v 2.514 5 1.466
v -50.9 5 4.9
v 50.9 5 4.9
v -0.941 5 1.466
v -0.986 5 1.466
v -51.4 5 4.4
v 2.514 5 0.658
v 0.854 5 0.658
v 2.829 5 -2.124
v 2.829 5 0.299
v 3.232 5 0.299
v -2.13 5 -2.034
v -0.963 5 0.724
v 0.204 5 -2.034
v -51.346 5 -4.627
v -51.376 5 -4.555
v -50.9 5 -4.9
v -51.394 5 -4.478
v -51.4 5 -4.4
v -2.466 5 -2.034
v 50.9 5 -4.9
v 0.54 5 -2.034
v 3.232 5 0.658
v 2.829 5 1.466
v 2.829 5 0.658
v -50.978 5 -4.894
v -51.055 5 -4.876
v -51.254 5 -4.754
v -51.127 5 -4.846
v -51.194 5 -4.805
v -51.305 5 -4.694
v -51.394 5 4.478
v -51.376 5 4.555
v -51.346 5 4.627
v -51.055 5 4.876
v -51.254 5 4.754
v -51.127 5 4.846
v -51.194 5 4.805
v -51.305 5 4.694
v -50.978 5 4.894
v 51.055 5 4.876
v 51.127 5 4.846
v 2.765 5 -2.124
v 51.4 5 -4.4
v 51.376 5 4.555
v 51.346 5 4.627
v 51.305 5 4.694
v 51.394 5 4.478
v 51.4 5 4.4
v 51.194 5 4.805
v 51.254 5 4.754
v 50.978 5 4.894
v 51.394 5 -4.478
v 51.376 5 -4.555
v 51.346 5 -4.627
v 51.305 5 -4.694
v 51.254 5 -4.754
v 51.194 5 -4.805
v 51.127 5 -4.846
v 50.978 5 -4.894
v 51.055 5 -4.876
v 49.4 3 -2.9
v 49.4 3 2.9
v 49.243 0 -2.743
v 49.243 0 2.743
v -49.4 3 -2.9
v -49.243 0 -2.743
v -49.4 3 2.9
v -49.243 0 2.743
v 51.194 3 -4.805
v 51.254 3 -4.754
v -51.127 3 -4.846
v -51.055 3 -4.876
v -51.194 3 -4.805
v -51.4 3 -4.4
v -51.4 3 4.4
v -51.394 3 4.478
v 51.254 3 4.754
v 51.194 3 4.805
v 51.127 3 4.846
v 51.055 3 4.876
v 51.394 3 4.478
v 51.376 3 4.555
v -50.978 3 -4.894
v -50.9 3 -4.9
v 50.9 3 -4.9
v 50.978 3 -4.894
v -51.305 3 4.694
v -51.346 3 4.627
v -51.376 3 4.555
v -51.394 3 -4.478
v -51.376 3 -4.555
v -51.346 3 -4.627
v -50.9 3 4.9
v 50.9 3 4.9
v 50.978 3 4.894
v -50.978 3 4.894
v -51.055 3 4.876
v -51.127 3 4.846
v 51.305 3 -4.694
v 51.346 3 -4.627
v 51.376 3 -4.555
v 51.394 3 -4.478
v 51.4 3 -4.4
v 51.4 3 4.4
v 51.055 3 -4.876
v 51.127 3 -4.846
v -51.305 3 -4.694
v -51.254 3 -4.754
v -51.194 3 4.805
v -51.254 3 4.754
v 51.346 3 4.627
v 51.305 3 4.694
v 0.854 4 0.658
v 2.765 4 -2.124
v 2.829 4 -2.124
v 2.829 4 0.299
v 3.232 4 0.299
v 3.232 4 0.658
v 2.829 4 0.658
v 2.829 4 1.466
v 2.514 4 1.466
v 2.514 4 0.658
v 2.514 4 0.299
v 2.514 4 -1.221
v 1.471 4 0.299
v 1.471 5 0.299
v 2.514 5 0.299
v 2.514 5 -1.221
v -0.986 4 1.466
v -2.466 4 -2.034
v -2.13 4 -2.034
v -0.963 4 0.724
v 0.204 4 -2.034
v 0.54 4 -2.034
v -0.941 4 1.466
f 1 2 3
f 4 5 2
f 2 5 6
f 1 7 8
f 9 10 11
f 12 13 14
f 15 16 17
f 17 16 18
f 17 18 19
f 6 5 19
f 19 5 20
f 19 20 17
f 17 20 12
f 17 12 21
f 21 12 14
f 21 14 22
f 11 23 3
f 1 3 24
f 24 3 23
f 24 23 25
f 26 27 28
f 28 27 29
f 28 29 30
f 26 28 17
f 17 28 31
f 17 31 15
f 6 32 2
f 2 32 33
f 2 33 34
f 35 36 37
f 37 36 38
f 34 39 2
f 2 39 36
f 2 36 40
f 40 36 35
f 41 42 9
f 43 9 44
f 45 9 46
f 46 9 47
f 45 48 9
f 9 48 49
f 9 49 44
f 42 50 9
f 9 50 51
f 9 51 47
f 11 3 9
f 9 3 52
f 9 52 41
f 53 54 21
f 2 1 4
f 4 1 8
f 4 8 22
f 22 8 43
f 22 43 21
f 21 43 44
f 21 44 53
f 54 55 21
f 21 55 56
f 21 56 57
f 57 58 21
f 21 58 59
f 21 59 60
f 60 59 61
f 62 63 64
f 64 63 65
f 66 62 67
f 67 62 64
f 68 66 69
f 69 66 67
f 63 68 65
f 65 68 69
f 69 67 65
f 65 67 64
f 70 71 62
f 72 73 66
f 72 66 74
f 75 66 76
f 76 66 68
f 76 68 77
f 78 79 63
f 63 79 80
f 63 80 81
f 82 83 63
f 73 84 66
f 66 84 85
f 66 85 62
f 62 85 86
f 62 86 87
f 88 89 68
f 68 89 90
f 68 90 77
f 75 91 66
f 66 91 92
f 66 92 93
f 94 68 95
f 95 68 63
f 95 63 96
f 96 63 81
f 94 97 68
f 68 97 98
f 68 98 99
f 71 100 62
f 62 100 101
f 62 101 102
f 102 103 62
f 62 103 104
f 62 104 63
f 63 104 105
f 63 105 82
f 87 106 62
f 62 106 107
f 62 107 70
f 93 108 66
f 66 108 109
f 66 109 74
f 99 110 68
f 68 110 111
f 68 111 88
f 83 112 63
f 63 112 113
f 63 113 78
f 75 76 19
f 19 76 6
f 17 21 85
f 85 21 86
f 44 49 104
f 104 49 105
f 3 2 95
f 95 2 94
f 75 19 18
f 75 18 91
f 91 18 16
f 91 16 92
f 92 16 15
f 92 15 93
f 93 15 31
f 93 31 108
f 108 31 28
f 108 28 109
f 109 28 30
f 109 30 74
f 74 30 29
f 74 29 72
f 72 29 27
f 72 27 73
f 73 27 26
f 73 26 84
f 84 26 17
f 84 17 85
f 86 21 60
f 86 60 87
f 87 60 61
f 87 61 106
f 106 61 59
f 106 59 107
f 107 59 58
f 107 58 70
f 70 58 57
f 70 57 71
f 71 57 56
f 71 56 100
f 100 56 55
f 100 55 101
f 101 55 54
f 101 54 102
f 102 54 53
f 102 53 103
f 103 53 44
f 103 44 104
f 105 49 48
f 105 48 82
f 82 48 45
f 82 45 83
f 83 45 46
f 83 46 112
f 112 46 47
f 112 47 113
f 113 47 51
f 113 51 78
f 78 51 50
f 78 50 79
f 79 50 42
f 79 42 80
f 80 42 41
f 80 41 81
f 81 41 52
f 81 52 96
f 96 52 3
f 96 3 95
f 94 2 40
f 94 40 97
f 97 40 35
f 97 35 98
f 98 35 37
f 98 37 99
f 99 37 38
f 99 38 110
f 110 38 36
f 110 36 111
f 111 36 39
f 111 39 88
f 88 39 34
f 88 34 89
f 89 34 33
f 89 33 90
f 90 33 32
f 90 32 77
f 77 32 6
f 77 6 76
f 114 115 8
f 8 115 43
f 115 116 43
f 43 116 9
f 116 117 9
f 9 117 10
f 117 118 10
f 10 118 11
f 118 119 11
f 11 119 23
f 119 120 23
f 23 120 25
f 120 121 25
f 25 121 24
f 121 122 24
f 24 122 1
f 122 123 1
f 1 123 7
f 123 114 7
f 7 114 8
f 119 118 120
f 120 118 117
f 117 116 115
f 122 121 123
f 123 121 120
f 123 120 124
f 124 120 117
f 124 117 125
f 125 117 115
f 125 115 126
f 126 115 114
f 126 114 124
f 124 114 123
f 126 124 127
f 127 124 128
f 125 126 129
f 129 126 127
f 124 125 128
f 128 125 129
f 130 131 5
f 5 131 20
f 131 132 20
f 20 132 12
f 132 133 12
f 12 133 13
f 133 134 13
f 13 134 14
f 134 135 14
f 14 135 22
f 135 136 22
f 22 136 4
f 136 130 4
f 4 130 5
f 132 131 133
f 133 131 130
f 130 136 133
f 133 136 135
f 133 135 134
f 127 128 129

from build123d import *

# Parameters (mm, degrees)
SKETCH1_W           = 98.8
SKETCH1_H           = 5.8
BOSS_EXTRUDE1_DEPTH = 3
SKETCH2_W           = 100.8
SKETCH2_H           = 7.8
BOSS_EXTRUDE3_DEPTH = 2
DRAFT1_ANGLE        = 3
SKETCH3_W           = 102.8
SKETCH3_H           = 9.8
BOSS_EXTRUDE4_DEPTH = 2
FILLET1_R           = 0.5
CUT_EXTRUDE1_DEPTH  = 1


with BuildPart() as part:
    # Sketch1 → Boss-Extrude1 (new body)
    with BuildSketch(Plane(origin=(0, 0, 0), x_dir=(1, 0, 0), z_dir=(0, 1, 0))):
        Rectangle(SKETCH1_W, SKETCH1_H)
    extrude(amount=BOSS_EXTRUDE1_DEPTH)

    # Draft1
    draft1_faces = [part.faces().sort_by_distance(p)[0] for p in [
        (49.4, 1.5, 0),
        (0, 1.5, 2.9),
        (-49.4, 1.5, 0),
        (0, 1.5, -2.9),
    ]]
    draft(draft1_faces, Plane(origin=(0, 3, 0), x_dir=(0, 0, -1), z_dir=(0, -1, 0)), DRAFT1_ANGLE)



with BuildPart() as body_2:
    # Sketch2 → Boss-Extrude3 (new body)
    with BuildSketch(Plane(origin=(0, 3, 0), x_dir=(1, 0, 0), z_dir=(0, 1, 0))):
        Rectangle(SKETCH2_W, SKETCH2_H)
    extrude(amount=BOSS_EXTRUDE3_DEPTH)


with BuildPart() as part_1:
    add(part.part)

    add(body_2.part)  # Boss-Extrude4 merges body 2
    # Sketch3 → Boss-Extrude4 (add)
    with BuildSketch(Plane(origin=(0, 5, 0), x_dir=(1, 0, 0), z_dir=(0, 1, 0))):
        Rectangle(SKETCH3_W, SKETCH3_H)
    extrude(amount=-BOSS_EXTRUDE4_DEPTH)

    # Fillet1
    fillet1_edges = [part_1.edges().sort_by_distance(p)[0] for p in [
        (-51.4, 4, 4.9),
        (-51.4, 4, -4.9),
        (51.4, 4, -4.9),
        (51.4, 4, 4.9),
    ]]
    fillet(fillet1_edges, radius=FILLET1_R)

    # Sketch4 → Cut-Extrude1 (cut)
    # profile 1 of 2: a face of its own
    with BuildSketch(Plane(origin=(0, 5, 0), x_dir=(1, 0, 0), z_dir=(0, 1, 0))):
        Polygon((-2.466339169, 2.034069186), (-2.129800707, 2.034069186), (-0.96313404, -0.724143955), (0.203532626, 2.034069186), (0.540071088, 2.034069186), (-0.940698143, -1.465930814), (-0.985569938, -1.465930814), align=None)
    # profile 2 of 2: a face of its own
    with BuildSketch(Plane(origin=(0, 5, 0), x_dir=(1, 0, 0), z_dir=(0, 1, 0))):
        Polygon((2.764730543, 2.123812775), (2.828532626, 2.123812775), (2.828532626, -0.299264148), (3.23237878, -0.299264148), (3.23237878, -0.658238507), (2.828532626, -0.658238507), (2.828532626, -1.465930814), (2.514430062, -1.465930814), (2.514430062, -0.658238507), (0.854173652, -0.658238507), align=None)
        Polygon((2.514430062, -0.299264148), (2.514430062, 1.220767903), (1.471160831, -0.299264148), align=None, mode=Mode.SUBTRACT)
    extrude(amount=-CUT_EXTRUDE1_DEPTH, mode=Mode.SUBTRACT)


solid = part_1.part
